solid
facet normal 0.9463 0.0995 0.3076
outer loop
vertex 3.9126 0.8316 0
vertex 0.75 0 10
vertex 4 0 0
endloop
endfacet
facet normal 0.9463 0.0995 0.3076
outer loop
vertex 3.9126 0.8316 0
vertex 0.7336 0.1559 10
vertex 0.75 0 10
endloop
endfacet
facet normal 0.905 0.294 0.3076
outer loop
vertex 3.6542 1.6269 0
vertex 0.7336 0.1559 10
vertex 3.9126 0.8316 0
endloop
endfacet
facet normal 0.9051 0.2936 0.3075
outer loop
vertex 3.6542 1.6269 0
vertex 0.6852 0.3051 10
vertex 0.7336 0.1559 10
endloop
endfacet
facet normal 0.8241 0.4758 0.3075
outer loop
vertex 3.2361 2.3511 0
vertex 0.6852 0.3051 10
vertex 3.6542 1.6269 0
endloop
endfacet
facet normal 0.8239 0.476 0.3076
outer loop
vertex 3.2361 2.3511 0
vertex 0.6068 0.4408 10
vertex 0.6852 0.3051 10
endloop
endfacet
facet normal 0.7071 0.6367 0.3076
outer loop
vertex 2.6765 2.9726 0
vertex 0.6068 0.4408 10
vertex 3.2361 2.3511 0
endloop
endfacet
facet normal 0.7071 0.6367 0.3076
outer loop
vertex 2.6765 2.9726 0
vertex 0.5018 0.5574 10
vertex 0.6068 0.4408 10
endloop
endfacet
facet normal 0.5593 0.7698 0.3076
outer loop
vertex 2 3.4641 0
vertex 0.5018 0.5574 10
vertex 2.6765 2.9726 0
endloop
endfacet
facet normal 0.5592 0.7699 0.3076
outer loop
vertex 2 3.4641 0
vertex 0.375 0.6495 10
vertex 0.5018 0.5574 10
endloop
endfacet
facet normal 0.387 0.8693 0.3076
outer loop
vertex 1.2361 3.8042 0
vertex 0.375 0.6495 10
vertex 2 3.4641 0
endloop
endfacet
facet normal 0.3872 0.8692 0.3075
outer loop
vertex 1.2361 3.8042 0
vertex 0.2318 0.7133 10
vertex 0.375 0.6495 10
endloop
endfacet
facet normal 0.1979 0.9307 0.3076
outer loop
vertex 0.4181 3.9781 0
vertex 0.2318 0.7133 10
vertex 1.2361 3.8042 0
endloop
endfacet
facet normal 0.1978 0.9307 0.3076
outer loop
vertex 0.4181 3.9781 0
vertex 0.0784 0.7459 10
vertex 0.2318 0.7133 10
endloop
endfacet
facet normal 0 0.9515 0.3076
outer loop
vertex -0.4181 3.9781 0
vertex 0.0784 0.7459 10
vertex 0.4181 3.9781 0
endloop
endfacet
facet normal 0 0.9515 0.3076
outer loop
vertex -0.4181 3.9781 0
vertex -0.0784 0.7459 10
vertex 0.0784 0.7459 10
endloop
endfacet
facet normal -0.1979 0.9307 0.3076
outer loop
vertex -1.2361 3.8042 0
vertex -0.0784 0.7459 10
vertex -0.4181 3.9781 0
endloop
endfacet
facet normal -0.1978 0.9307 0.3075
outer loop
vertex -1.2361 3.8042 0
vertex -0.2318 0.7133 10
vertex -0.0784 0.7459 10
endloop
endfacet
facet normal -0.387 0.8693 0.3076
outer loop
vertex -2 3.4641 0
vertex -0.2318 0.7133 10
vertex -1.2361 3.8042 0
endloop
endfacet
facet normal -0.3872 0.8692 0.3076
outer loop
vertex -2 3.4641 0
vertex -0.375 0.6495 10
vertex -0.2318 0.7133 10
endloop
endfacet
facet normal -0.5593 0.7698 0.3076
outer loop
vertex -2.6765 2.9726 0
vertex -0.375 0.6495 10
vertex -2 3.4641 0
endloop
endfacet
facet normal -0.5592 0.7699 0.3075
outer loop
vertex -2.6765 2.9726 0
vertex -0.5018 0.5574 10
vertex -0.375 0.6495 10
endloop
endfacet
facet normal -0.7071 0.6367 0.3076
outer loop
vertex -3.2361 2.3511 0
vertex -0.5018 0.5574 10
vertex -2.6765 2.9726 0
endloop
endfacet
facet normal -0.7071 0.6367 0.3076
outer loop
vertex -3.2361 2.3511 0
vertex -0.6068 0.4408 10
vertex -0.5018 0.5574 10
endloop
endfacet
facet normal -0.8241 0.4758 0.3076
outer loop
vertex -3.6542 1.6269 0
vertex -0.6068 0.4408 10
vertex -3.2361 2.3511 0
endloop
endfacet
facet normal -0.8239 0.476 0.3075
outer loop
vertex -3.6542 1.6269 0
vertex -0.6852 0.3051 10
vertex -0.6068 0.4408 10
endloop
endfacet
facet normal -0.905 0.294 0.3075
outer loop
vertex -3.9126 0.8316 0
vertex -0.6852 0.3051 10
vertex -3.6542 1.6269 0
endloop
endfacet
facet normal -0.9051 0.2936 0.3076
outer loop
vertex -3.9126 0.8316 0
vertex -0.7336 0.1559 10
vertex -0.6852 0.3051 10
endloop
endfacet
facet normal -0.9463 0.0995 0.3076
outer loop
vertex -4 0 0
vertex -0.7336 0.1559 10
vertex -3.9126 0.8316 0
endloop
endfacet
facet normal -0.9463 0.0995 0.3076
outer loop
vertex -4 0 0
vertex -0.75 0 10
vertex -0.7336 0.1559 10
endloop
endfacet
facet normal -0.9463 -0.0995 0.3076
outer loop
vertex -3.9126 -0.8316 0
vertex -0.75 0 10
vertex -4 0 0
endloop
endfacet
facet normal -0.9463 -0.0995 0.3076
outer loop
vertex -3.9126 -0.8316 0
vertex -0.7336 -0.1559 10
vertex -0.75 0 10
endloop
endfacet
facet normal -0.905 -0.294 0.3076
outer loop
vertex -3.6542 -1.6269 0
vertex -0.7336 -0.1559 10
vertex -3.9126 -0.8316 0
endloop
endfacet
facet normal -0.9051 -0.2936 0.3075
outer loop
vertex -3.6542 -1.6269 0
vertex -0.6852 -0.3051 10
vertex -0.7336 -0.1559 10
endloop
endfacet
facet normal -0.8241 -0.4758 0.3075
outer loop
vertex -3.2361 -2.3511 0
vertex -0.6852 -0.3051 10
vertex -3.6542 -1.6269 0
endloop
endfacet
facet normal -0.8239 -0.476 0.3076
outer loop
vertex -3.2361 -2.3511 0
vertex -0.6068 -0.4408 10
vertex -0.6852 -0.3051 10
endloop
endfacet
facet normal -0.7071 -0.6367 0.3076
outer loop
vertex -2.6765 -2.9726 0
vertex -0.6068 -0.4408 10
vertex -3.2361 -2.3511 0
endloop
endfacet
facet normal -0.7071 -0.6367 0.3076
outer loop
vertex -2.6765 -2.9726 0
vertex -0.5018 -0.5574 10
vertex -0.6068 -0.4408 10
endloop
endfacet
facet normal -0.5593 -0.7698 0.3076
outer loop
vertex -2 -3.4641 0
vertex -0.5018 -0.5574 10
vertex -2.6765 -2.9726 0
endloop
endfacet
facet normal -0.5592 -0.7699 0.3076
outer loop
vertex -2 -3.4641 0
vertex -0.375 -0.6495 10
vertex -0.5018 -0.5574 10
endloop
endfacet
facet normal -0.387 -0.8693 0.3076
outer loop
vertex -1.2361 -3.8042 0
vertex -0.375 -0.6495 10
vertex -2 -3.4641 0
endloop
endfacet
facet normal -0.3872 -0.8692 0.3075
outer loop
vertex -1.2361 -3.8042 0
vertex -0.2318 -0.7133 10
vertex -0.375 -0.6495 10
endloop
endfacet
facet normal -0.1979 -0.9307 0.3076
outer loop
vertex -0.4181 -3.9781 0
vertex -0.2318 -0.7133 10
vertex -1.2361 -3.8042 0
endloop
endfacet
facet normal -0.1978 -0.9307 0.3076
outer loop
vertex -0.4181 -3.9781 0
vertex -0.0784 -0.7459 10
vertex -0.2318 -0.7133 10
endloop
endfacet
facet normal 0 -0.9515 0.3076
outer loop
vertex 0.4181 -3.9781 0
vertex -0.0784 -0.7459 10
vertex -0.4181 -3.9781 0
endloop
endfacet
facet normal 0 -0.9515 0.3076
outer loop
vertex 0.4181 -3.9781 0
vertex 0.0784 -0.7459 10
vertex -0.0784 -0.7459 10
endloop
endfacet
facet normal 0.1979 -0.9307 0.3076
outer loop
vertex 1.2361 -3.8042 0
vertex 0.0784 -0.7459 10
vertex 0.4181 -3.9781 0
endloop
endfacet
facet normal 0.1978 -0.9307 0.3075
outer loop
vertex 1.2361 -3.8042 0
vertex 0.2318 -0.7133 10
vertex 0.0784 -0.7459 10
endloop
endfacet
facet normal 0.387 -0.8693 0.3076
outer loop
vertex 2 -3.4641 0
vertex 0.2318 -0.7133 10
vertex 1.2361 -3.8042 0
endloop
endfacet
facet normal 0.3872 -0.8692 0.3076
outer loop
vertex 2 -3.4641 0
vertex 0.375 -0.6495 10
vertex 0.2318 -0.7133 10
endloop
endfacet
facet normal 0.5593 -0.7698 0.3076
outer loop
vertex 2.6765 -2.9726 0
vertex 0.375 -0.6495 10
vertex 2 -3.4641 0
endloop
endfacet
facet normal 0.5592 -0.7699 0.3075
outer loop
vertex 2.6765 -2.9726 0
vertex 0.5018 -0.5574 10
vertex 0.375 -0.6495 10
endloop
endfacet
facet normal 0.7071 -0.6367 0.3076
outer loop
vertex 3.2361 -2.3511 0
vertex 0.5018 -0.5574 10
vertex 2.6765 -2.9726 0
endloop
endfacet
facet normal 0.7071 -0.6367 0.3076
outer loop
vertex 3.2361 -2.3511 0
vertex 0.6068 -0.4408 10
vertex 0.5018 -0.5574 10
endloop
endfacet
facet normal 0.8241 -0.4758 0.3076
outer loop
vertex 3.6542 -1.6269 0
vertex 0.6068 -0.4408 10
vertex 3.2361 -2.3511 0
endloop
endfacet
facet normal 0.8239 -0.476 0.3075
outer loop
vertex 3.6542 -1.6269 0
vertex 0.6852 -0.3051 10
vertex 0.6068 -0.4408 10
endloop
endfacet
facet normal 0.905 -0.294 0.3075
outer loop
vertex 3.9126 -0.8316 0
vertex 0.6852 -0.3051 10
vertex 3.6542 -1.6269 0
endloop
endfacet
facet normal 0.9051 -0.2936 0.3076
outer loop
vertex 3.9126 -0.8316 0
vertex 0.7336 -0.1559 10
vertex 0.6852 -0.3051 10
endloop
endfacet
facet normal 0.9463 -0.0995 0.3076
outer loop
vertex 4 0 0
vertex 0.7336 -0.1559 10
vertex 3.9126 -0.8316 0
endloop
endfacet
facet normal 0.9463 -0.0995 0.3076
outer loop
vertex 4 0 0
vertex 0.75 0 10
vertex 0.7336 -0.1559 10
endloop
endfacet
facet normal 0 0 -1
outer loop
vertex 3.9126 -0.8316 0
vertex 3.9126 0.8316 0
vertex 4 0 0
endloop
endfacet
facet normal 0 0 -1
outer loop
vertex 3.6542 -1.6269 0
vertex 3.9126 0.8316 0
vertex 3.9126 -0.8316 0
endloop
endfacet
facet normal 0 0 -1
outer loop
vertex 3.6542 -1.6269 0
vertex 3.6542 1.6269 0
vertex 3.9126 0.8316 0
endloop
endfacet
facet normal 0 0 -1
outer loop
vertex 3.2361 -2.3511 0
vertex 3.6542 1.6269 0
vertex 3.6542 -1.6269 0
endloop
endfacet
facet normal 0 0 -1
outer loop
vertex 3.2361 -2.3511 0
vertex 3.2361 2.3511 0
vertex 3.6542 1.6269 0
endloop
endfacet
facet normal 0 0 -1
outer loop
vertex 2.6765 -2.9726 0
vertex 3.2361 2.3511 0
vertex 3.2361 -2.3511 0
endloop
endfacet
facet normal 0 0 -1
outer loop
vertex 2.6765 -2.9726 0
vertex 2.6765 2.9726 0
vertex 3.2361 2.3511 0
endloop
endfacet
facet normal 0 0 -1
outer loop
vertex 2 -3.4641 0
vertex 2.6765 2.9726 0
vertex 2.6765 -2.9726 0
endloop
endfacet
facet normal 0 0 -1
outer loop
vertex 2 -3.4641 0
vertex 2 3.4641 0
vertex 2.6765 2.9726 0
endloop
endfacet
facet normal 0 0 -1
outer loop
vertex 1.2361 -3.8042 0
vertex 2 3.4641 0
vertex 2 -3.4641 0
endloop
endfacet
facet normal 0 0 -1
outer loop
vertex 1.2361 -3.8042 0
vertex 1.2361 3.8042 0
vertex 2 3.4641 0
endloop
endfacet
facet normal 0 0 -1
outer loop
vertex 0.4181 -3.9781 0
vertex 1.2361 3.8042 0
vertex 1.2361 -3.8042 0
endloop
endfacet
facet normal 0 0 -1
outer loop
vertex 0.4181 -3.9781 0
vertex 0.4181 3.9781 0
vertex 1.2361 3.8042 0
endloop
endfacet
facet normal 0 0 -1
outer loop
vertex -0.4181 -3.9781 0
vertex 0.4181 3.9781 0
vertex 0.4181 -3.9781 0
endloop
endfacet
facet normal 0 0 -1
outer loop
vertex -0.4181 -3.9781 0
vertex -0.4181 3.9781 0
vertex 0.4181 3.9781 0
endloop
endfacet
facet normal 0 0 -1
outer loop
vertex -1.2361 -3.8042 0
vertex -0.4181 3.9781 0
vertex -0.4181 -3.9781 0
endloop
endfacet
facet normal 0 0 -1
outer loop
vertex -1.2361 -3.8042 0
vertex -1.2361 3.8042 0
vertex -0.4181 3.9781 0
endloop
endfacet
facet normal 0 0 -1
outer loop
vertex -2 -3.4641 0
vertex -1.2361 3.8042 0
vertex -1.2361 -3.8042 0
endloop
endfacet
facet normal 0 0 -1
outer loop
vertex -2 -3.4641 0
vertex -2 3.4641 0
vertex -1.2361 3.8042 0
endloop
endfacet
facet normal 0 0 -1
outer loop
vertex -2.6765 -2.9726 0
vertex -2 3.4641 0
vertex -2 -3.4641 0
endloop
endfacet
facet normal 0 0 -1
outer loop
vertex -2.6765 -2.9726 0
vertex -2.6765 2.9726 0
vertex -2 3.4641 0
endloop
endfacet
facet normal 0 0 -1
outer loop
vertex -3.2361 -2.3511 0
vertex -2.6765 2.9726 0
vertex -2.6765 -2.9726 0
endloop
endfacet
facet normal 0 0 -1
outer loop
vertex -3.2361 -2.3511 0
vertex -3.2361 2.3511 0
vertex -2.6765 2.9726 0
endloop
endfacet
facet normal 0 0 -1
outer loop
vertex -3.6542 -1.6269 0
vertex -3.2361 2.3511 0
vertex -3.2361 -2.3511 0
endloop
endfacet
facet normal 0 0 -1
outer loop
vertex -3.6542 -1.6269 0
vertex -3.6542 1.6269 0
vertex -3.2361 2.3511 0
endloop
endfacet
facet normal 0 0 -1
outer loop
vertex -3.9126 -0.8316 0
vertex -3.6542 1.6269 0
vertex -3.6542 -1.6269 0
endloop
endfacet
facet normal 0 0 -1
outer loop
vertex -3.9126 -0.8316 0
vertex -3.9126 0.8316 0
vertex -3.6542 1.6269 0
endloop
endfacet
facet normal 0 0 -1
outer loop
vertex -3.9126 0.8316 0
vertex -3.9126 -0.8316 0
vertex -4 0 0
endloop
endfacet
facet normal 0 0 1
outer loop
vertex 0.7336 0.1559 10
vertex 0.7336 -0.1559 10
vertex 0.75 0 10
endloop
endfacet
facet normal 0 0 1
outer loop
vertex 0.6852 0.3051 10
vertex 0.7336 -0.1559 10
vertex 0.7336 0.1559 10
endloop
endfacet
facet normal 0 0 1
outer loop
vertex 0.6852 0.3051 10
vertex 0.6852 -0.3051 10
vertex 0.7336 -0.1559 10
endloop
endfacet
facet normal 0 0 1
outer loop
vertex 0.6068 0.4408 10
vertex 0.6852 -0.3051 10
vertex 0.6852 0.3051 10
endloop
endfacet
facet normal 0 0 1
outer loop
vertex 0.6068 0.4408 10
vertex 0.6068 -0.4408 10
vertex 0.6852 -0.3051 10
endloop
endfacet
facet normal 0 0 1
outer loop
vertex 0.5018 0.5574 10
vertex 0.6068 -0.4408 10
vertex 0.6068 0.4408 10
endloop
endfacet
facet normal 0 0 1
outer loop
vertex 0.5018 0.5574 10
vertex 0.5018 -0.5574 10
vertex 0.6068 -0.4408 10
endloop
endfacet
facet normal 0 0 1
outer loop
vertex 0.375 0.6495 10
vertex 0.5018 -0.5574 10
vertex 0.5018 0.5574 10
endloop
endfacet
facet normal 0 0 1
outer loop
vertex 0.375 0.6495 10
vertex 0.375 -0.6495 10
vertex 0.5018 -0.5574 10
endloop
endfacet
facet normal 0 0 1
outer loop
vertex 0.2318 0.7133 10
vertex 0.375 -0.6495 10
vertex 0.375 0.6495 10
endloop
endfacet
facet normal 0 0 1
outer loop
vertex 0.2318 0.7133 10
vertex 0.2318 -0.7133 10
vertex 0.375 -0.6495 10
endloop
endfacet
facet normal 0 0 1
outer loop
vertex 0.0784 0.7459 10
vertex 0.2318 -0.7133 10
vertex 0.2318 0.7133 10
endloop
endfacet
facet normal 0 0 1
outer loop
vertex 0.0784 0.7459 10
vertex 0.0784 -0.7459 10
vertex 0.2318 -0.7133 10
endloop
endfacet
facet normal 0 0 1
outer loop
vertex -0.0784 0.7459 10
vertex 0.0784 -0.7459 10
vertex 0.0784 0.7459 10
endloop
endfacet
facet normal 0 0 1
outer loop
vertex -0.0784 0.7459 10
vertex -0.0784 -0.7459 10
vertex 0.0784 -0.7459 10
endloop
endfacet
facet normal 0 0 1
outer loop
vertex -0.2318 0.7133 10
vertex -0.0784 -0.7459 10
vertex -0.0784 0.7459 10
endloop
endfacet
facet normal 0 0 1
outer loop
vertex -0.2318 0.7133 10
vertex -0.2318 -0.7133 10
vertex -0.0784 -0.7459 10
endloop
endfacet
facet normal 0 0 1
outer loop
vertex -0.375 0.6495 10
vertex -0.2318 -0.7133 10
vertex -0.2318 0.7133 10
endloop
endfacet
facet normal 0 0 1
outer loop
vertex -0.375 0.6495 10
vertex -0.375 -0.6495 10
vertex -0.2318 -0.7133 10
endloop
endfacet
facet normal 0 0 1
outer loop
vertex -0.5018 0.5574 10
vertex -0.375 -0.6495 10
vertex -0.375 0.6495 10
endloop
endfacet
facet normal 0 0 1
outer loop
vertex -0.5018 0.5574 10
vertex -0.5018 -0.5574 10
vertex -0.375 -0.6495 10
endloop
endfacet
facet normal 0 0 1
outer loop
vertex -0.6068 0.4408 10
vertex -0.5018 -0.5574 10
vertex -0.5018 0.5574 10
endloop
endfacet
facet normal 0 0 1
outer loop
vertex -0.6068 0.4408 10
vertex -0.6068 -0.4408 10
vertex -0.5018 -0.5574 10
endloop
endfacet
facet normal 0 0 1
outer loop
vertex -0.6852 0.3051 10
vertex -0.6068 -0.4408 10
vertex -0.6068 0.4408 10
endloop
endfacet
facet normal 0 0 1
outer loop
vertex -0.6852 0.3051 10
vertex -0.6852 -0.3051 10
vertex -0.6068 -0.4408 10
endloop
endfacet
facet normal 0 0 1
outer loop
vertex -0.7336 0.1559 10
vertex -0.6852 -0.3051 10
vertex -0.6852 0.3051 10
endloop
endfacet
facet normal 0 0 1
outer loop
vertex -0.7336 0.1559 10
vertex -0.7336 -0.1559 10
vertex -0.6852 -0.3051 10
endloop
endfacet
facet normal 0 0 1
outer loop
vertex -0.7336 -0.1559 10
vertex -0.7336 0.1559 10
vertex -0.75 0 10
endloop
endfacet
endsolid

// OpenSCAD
$fn=30;
//cylinder(h = 5, r = 2.5, center = false);
cylinder(h = 10, r1 = 4, r2 = .75, center = false);
